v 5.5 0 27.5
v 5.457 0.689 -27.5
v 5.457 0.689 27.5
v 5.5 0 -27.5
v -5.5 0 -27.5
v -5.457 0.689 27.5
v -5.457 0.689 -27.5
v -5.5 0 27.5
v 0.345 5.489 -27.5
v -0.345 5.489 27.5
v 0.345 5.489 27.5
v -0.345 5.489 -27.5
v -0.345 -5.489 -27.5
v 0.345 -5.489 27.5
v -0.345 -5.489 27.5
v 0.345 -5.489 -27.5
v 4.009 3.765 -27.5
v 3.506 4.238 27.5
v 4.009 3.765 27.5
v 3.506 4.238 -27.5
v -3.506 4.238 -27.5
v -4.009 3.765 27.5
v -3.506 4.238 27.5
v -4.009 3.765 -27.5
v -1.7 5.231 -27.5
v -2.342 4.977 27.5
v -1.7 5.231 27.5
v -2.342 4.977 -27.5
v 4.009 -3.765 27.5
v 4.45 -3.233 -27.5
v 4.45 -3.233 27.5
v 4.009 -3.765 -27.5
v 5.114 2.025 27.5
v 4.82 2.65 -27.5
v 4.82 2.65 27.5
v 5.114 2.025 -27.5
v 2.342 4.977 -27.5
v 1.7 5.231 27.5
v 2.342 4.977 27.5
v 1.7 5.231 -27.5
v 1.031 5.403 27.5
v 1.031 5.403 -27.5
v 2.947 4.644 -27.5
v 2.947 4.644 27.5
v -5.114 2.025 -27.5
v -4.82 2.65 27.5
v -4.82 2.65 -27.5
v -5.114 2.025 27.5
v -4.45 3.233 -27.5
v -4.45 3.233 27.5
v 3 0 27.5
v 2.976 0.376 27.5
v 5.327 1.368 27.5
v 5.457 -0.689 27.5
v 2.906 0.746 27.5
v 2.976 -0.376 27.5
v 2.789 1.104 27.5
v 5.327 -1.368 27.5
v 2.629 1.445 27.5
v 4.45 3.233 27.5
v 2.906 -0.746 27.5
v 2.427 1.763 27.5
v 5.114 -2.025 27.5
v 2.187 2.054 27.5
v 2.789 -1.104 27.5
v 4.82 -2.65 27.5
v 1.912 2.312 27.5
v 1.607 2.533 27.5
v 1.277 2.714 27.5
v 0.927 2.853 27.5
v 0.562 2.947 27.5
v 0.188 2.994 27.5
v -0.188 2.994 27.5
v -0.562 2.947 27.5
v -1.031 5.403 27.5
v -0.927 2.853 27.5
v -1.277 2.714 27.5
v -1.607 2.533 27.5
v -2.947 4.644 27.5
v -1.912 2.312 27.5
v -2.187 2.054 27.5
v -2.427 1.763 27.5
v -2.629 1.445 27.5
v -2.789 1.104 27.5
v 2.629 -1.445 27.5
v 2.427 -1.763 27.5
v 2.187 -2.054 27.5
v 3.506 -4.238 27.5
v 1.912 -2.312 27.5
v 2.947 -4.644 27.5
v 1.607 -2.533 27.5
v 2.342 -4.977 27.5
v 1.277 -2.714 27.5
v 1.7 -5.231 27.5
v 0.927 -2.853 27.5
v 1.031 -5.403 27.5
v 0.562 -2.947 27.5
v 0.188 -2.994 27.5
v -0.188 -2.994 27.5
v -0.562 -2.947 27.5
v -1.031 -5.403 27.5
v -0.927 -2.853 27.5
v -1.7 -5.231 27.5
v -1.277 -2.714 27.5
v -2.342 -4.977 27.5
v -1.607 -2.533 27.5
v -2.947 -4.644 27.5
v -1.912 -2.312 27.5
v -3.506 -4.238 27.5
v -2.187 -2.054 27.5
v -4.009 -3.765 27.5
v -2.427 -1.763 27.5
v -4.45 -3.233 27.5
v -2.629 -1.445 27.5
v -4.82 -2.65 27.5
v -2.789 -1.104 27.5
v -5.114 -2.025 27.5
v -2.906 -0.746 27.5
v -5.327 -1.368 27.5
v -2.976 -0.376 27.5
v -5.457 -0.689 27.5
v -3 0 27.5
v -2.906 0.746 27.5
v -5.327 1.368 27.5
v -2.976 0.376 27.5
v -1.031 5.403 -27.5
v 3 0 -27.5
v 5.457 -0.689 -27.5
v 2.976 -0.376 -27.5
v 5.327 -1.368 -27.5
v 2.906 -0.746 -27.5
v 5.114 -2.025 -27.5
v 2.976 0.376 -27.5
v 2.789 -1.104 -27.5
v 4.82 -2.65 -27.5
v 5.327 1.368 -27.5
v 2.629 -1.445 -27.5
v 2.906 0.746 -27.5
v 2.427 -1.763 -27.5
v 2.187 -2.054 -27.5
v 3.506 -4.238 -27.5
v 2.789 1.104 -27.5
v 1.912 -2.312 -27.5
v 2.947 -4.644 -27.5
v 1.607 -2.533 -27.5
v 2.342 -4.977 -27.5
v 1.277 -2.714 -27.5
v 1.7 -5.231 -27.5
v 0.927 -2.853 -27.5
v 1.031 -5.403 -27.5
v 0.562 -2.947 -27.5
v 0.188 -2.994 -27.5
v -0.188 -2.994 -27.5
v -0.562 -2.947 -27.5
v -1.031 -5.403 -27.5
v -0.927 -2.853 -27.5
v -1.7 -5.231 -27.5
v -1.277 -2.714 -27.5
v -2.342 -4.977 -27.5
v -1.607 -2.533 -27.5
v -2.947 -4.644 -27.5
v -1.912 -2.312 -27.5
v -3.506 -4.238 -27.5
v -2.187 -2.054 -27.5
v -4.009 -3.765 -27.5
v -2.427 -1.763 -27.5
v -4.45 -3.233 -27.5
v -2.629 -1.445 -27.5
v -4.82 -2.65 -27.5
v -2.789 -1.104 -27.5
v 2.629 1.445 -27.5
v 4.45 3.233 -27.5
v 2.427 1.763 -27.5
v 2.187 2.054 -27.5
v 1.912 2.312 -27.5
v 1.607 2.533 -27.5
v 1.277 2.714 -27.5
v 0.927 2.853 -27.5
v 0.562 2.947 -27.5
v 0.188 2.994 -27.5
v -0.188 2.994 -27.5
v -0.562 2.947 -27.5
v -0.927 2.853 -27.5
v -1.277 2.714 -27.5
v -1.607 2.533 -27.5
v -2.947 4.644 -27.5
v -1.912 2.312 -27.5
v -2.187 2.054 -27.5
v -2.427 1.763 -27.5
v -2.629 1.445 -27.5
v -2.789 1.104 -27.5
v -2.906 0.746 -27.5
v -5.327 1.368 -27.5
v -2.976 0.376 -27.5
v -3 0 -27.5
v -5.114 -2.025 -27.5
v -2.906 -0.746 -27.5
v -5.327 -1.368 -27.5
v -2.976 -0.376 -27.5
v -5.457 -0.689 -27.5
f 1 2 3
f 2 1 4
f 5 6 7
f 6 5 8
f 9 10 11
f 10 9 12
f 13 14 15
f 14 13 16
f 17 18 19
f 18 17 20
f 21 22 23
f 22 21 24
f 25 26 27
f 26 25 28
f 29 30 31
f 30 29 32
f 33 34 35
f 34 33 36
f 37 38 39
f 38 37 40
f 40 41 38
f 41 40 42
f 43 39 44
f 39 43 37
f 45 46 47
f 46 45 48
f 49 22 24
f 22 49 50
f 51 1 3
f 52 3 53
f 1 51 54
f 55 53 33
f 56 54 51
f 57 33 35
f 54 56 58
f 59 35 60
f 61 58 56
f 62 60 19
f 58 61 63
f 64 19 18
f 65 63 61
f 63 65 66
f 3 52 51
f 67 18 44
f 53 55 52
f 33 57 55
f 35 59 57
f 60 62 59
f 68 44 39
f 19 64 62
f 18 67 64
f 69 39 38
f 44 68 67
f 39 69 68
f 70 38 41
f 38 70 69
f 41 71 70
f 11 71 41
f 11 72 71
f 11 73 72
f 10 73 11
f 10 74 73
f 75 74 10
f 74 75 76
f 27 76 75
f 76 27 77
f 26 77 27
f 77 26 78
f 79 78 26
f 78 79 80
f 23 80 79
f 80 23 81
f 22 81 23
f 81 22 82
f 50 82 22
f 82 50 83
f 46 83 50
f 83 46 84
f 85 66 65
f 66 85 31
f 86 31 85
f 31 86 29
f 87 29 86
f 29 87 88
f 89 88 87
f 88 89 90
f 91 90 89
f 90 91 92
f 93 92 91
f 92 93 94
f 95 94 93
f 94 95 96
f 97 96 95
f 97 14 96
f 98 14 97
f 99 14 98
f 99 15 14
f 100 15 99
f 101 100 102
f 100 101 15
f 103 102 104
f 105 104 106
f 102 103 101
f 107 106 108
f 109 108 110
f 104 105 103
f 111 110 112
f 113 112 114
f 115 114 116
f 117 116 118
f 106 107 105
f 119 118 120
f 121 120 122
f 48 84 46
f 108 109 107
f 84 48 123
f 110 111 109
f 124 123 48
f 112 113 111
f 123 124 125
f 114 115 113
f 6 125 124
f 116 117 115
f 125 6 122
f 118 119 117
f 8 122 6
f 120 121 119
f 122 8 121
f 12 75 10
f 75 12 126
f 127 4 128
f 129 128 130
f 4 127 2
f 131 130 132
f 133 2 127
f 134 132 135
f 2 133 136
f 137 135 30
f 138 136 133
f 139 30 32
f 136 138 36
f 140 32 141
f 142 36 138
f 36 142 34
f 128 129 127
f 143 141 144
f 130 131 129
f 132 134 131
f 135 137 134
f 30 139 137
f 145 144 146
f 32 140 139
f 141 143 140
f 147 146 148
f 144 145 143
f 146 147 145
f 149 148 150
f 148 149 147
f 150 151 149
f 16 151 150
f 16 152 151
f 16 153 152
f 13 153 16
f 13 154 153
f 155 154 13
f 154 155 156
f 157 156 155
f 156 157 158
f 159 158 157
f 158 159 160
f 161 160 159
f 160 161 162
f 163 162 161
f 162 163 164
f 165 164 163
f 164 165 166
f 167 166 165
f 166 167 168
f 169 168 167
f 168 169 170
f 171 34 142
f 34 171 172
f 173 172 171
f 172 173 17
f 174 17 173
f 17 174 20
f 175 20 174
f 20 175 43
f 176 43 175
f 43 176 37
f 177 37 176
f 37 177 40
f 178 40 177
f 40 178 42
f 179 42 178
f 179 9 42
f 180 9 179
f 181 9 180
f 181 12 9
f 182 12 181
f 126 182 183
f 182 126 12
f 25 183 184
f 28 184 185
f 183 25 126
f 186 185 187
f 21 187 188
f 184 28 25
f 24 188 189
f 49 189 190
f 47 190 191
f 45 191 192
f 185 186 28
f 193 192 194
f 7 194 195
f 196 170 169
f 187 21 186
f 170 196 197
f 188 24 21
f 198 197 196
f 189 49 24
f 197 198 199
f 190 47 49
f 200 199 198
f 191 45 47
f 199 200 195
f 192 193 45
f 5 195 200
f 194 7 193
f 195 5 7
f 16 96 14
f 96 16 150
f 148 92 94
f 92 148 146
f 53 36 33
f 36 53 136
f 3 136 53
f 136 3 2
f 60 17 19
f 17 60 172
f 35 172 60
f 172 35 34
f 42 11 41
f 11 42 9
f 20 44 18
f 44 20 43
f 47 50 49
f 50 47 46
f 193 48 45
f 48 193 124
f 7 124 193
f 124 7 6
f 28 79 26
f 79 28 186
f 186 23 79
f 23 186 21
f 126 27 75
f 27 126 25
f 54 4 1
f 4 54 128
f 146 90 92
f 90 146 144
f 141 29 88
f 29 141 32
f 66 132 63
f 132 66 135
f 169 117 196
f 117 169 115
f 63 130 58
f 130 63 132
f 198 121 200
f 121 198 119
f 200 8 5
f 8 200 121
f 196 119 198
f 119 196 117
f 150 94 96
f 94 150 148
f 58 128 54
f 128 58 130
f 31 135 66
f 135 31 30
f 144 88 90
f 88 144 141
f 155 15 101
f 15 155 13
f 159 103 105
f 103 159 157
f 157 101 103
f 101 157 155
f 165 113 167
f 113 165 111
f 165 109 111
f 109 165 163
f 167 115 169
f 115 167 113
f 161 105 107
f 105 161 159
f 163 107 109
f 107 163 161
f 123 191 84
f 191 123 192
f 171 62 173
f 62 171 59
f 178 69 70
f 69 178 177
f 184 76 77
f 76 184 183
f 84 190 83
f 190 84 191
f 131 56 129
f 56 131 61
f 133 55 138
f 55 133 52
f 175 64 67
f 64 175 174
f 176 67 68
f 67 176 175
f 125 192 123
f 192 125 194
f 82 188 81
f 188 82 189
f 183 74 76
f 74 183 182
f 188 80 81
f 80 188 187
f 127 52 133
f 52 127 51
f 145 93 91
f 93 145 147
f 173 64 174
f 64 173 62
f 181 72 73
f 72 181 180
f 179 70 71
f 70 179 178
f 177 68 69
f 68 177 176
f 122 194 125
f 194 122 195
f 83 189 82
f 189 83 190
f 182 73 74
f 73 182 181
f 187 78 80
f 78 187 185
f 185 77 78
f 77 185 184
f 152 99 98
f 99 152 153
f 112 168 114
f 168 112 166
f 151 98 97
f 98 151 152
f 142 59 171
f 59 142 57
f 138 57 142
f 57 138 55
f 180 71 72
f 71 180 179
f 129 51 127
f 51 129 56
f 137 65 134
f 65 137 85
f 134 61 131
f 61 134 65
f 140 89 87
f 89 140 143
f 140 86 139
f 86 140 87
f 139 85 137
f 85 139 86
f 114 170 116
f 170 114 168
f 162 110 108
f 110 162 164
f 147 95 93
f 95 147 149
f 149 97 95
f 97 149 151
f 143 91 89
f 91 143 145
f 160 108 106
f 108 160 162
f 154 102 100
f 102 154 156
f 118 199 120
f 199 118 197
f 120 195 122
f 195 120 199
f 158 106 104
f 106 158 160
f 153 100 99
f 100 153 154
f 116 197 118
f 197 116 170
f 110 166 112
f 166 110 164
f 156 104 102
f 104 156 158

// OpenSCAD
$fn = 50;


difference() {
	union() {
		translate(v = [0, 0, -27.5000000000]) {
			cylinder(h = 55, r = 5.5000000000);
		}
	}
	union() {
		translate(v = [0, 0, -100.0000000000]) {
			cylinder(h = 200, r = 3.0000000000);
		}
	}
}
